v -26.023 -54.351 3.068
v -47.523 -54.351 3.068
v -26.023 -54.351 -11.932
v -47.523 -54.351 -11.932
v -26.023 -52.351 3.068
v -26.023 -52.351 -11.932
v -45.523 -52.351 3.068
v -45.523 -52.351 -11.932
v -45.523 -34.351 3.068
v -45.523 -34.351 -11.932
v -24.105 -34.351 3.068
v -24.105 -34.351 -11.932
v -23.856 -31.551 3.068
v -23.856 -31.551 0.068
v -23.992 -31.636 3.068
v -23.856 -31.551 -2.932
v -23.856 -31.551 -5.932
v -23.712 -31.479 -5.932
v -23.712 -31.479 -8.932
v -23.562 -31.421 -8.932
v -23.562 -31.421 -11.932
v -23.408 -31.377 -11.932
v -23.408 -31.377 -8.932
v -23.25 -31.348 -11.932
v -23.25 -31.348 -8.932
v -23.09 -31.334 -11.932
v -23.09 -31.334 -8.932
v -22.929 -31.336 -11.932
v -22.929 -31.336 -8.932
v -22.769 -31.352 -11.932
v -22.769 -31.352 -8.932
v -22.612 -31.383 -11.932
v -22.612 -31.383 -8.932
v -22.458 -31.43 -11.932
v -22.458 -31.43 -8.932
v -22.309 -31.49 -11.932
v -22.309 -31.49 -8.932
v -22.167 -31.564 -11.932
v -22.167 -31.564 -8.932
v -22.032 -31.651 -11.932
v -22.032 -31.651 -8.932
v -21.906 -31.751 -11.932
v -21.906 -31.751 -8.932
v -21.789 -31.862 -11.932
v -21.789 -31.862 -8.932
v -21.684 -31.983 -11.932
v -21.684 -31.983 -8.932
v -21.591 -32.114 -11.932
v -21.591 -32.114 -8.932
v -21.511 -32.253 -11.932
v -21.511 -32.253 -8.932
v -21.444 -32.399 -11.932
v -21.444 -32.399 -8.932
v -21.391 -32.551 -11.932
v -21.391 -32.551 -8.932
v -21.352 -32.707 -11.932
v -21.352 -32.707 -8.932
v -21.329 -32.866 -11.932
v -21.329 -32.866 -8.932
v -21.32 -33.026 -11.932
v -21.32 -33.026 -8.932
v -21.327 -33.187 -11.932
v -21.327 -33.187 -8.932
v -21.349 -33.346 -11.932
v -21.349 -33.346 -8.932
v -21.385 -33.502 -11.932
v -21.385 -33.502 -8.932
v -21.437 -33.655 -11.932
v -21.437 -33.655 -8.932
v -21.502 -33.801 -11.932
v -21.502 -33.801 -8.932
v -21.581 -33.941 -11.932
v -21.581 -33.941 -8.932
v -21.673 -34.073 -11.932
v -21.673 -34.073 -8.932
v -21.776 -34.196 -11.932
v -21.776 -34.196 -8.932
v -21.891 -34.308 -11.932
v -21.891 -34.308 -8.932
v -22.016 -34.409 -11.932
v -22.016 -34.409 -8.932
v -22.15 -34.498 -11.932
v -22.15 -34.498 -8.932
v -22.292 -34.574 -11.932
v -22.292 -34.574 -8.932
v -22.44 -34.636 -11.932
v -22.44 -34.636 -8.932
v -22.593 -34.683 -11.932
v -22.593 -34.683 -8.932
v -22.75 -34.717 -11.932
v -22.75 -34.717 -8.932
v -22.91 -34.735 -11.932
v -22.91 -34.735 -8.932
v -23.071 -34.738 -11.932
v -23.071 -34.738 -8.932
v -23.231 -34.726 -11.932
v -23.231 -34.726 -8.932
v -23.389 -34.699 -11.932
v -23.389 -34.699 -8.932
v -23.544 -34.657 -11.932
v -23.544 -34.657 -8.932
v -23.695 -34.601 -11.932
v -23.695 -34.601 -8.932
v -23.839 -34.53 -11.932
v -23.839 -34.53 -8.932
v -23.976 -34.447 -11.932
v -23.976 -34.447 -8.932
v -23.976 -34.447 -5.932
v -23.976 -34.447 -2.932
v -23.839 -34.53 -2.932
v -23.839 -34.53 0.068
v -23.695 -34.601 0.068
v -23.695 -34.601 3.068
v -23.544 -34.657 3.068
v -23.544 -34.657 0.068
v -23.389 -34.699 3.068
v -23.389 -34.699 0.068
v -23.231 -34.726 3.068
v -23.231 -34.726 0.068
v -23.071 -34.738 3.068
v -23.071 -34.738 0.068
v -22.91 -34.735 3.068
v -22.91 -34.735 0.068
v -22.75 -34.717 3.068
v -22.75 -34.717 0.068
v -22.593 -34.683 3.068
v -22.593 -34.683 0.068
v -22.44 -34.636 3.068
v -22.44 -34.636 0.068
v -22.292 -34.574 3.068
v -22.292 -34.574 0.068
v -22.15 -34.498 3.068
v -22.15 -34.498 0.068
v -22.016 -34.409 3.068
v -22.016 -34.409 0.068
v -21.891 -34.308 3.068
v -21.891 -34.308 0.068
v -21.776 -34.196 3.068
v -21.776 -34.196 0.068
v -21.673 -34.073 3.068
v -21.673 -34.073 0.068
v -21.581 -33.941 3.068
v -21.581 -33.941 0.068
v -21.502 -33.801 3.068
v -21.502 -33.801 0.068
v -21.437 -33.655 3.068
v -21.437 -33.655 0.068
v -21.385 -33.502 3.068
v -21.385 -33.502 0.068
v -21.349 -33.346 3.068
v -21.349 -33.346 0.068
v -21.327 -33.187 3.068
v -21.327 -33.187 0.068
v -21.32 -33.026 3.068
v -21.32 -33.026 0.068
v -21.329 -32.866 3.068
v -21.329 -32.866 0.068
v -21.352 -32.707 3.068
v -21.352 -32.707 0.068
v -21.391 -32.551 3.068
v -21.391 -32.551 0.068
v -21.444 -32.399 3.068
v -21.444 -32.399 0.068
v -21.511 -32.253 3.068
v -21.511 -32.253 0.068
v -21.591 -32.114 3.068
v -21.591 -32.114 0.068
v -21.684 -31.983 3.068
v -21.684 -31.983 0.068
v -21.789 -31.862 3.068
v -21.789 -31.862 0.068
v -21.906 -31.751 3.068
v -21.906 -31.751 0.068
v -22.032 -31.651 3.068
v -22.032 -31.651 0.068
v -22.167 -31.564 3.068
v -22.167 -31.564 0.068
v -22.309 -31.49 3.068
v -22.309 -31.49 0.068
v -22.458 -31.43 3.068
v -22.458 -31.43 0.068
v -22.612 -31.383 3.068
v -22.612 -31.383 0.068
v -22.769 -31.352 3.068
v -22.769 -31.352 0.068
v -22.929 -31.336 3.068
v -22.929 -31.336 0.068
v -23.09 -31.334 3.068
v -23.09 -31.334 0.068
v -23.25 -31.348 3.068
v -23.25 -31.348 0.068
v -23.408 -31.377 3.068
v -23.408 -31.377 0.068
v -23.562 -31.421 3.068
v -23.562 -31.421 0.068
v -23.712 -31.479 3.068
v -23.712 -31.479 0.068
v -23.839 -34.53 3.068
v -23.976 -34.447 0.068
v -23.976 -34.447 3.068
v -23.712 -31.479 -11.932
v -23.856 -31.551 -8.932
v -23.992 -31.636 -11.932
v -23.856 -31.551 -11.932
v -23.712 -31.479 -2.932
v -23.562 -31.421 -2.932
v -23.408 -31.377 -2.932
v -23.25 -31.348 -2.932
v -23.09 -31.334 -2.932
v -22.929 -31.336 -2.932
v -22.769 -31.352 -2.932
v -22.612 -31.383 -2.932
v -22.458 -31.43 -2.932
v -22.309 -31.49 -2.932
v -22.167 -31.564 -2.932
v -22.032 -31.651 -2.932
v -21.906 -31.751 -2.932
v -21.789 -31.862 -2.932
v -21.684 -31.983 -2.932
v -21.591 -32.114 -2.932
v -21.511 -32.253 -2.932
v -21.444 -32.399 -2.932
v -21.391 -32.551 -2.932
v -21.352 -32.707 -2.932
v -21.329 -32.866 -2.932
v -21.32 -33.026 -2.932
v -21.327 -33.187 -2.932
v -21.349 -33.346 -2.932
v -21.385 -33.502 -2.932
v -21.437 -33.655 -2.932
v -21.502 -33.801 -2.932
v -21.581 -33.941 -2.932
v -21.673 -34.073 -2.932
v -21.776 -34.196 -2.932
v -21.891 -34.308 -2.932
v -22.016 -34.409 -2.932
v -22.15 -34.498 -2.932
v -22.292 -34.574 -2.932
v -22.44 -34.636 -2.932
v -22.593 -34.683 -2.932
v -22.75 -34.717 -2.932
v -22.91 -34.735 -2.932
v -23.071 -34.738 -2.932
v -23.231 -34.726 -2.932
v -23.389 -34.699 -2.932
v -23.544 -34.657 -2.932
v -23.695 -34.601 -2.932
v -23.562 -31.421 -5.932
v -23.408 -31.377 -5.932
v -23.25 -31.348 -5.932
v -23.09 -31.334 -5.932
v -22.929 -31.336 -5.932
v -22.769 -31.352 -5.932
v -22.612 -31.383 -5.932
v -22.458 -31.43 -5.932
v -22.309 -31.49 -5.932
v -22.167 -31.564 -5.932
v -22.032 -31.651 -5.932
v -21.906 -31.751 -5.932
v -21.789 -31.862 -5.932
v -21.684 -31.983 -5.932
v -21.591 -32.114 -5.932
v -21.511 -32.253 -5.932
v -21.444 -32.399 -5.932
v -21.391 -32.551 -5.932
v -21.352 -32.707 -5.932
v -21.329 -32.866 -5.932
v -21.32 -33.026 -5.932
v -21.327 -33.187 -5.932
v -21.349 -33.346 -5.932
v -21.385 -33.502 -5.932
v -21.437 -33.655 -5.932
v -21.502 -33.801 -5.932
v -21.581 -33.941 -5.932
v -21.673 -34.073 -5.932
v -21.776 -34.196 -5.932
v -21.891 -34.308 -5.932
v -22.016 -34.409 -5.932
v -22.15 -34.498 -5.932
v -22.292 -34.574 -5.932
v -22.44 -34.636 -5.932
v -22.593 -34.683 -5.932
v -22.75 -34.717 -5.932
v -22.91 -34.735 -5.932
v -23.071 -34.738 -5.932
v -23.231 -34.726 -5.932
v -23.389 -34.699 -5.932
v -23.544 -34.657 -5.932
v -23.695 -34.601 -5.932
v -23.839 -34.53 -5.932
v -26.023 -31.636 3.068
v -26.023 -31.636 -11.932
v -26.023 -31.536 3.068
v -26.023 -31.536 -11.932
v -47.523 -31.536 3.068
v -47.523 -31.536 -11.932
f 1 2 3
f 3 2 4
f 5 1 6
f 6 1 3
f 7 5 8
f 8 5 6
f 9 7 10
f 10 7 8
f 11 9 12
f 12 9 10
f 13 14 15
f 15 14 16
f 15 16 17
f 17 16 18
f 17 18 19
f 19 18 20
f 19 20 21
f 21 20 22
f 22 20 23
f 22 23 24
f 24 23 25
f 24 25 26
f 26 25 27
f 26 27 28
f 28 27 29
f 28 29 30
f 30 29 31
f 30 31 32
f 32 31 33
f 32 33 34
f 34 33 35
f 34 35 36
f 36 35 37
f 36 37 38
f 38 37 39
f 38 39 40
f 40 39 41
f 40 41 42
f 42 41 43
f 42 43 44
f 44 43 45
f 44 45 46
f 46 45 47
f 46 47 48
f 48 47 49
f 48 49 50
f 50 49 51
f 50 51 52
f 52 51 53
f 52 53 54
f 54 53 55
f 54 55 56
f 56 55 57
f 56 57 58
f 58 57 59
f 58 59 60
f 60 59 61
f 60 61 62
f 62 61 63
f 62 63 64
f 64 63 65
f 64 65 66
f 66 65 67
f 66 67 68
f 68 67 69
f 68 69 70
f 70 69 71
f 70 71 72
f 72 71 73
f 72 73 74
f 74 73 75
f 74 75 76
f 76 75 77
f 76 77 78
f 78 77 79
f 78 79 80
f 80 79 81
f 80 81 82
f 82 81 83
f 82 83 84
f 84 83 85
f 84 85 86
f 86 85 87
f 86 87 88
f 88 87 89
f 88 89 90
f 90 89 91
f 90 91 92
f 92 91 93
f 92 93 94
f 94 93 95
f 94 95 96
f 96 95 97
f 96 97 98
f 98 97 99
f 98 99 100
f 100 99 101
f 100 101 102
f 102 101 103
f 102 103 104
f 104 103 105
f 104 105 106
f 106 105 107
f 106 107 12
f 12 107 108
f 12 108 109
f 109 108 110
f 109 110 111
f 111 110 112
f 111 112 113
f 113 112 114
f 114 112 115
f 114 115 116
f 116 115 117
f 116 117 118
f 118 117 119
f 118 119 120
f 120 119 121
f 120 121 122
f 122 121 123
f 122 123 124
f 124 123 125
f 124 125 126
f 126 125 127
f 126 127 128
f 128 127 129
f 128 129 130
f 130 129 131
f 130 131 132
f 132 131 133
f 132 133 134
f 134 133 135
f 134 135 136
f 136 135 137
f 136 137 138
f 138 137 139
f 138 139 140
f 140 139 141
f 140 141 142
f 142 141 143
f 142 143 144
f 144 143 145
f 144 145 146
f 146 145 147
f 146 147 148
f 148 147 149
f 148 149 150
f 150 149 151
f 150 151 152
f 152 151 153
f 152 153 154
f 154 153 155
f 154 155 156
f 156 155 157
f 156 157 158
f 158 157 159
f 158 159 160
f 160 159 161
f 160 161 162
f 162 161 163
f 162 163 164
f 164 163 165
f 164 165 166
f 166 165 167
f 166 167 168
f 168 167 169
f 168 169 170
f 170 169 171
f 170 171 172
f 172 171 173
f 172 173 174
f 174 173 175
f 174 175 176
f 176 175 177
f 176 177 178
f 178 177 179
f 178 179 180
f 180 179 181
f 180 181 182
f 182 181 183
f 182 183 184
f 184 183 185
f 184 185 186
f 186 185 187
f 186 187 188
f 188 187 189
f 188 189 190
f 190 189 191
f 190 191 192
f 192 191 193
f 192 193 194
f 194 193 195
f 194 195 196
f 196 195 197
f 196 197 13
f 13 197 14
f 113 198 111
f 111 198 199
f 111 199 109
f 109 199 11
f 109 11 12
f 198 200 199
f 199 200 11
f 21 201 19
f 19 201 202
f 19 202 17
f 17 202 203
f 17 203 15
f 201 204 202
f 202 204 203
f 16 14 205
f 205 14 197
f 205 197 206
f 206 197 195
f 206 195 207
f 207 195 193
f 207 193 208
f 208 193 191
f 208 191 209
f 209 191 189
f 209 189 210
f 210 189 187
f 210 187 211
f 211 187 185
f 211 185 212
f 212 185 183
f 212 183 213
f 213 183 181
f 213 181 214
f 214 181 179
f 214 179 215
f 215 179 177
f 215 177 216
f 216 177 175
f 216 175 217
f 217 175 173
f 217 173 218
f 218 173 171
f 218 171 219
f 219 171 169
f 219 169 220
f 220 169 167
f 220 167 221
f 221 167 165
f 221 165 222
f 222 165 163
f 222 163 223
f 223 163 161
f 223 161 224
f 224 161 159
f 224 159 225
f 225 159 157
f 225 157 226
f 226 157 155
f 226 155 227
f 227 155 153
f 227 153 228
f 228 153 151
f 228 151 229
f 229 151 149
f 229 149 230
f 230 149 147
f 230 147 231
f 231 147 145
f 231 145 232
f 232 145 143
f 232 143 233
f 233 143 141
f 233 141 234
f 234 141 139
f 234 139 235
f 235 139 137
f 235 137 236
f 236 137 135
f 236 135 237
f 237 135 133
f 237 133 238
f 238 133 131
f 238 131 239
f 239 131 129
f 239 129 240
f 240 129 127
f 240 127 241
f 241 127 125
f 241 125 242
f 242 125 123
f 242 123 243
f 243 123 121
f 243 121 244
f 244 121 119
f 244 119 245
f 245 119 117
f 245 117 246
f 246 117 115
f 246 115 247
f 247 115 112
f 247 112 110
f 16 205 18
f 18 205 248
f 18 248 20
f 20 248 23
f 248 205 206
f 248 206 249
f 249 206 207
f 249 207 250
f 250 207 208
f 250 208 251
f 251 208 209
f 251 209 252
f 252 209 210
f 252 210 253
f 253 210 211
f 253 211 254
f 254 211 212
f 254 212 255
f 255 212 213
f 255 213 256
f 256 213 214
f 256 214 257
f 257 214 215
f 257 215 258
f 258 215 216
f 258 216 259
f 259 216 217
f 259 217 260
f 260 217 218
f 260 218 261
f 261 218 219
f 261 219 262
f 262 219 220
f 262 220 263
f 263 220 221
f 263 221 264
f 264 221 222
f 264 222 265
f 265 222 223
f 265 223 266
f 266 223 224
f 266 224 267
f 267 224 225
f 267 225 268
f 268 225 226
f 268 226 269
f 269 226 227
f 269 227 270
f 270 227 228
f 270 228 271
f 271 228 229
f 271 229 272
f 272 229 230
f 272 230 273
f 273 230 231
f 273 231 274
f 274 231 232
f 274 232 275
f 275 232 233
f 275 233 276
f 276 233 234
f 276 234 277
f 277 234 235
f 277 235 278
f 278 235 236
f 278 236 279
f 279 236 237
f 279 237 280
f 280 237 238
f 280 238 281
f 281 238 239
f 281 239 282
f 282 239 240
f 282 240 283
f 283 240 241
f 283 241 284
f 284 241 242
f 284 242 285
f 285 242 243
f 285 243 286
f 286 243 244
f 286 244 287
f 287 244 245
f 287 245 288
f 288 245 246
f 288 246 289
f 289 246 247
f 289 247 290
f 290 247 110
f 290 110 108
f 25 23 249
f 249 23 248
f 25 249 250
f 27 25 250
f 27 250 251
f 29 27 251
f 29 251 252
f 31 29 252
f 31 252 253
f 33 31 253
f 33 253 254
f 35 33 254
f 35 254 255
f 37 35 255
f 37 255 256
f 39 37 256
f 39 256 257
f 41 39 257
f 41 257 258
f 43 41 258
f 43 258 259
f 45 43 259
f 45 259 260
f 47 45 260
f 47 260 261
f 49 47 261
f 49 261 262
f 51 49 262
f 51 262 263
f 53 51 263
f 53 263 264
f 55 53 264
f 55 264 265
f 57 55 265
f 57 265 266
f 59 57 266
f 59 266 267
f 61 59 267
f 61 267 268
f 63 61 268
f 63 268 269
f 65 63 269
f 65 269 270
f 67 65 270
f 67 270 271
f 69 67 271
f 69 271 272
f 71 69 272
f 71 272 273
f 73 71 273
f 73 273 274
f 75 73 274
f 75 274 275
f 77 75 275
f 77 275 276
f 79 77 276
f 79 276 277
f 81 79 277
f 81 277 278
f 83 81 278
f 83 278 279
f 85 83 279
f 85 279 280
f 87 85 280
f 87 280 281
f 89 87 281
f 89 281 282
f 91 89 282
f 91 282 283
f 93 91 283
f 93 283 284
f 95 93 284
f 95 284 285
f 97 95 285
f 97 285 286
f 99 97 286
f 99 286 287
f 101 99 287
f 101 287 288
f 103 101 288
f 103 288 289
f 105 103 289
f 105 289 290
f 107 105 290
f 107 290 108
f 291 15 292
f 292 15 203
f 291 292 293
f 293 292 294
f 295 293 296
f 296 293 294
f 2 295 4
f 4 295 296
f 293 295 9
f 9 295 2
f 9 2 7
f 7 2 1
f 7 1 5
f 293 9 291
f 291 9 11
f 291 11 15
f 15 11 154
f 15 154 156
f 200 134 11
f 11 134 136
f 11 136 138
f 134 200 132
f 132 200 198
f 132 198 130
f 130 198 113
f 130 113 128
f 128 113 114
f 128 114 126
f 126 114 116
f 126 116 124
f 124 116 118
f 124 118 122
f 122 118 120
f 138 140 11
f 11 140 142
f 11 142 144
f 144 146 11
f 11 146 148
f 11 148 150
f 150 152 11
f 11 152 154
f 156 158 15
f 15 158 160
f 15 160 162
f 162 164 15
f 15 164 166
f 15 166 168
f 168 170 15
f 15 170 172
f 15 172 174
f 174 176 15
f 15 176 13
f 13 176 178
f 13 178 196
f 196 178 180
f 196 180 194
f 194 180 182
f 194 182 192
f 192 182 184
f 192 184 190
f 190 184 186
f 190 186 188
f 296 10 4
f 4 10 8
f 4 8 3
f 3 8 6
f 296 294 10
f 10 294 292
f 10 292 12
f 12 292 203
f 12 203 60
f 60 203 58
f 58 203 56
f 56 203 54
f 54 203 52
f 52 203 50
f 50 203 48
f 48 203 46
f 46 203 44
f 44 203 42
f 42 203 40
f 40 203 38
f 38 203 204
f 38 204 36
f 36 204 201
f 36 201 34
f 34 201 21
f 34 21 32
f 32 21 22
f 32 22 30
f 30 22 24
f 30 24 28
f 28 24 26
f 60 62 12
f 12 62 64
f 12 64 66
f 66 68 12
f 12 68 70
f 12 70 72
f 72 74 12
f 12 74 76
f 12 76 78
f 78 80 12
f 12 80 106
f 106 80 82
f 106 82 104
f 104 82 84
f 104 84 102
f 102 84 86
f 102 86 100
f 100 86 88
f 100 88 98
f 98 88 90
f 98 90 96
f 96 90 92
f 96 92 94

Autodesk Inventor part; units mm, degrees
ref_plane "YZ Plane" through (0, 0, 0) normal (1, 0, 0) x (0, 1, 0)
ref_plane "XZ Plane" through (0, 0, 0) normal (0, 1, 0) x (-1, 0, 0)
ref_plane "XY Plane" through (0, 0, 0) normal (0, 0, 1) x (1, 0, 0)
ref_plane "РабПлоскость3" through (-23.0229, -31.0507, 3.0679) normal (0, 0, 1) x (1, 0, 0)
sketch "Эскиз2" plane through (-23.0229, -31.0507, 3.0679) normal (0, 0, 1) x (1, 0, 0)
  arc A0 (-1, -3.4852) -> (-1, -0.4852) centre (0, -1.9852) ccw projected
  line L0 (-1, -3.4852) -> (-3, -3.4852) projected
  line L1 (-3, -0.4852) -> (-1, -0.4852) projected
  line L2 (-3, -0.4852) -> (-24.5, -0.4852)
  line L3 (-24.5, -0.4852) -> (-24.5, -3.2999)
  line L4 (-24.5, -3.2999) -> (-1.0821, -3.2999)
  line L5 (-3, -3.2999) -> (-3, -0.4852)
  line L6 (-24.5, -3.2999) -> (-22.5, -3.2999)
  line L7 (-22.5, -3.2999) -> (-22.5, -23.2999)
  line L8 (-22.5, -23.2999) -> (-24.5, -23.2999)
  line L9 (-24.5, -23.2999) -> (-24.5, -3.2999)
  line L10 (-22.5, -23.2999) -> (-3, -23.2999)
  line L11 (-3, -23.2999) -> (-3, -15.9662)
  line L12 (-3, -15.9662) -> (-22.5, -15.9662)
  line L13 (-22.5, -15.9662) -> (-22.5, -23.2999)
  line L14 (-1, -3.2999) -> (-22.5, -3.2999) projected
  line L15 (-22.5, -3.2999) -> (-22.5, -21.2999) projected
  line L16 (-3, -0.5852) -> (-0.9692, -0.5852)
  arc A1 (-1.0821, -3.2999) -> (-0.9692, -0.5852) centre (0, -1.9852) ccw
  line L17 (-0.9692, -3.3852) -> (-1.1358, -3.3852)
  line L18 (-1, -3.2999) -> (-22.5, -3.2999) projected
  line L19 (-22.5, -21.2999) -> (-1, -21.2999) projected
  point P0 (23.0229, 31.0507)
  point P1 (-22.5, -12.2999)
  point P2 (-3, -21.2999)
  point P3 (-22.5, -3.2999)
  point P4 (-3, -0.5852)
  dimension "d3" = 2
  dimension "d4" = 0.1
  dimension "d5" = 2
extrude "Выдавливание2" add sketch "Эскиз2" against normal blind 15 contours L5 L4 L3 L2 | L16 A1 L4 L5 | L4 L7 L8 L9 | L7 L19 L11 L10
properties part number "ЛЦМК.00002.00.00.00.00.22 Крышка короба"
